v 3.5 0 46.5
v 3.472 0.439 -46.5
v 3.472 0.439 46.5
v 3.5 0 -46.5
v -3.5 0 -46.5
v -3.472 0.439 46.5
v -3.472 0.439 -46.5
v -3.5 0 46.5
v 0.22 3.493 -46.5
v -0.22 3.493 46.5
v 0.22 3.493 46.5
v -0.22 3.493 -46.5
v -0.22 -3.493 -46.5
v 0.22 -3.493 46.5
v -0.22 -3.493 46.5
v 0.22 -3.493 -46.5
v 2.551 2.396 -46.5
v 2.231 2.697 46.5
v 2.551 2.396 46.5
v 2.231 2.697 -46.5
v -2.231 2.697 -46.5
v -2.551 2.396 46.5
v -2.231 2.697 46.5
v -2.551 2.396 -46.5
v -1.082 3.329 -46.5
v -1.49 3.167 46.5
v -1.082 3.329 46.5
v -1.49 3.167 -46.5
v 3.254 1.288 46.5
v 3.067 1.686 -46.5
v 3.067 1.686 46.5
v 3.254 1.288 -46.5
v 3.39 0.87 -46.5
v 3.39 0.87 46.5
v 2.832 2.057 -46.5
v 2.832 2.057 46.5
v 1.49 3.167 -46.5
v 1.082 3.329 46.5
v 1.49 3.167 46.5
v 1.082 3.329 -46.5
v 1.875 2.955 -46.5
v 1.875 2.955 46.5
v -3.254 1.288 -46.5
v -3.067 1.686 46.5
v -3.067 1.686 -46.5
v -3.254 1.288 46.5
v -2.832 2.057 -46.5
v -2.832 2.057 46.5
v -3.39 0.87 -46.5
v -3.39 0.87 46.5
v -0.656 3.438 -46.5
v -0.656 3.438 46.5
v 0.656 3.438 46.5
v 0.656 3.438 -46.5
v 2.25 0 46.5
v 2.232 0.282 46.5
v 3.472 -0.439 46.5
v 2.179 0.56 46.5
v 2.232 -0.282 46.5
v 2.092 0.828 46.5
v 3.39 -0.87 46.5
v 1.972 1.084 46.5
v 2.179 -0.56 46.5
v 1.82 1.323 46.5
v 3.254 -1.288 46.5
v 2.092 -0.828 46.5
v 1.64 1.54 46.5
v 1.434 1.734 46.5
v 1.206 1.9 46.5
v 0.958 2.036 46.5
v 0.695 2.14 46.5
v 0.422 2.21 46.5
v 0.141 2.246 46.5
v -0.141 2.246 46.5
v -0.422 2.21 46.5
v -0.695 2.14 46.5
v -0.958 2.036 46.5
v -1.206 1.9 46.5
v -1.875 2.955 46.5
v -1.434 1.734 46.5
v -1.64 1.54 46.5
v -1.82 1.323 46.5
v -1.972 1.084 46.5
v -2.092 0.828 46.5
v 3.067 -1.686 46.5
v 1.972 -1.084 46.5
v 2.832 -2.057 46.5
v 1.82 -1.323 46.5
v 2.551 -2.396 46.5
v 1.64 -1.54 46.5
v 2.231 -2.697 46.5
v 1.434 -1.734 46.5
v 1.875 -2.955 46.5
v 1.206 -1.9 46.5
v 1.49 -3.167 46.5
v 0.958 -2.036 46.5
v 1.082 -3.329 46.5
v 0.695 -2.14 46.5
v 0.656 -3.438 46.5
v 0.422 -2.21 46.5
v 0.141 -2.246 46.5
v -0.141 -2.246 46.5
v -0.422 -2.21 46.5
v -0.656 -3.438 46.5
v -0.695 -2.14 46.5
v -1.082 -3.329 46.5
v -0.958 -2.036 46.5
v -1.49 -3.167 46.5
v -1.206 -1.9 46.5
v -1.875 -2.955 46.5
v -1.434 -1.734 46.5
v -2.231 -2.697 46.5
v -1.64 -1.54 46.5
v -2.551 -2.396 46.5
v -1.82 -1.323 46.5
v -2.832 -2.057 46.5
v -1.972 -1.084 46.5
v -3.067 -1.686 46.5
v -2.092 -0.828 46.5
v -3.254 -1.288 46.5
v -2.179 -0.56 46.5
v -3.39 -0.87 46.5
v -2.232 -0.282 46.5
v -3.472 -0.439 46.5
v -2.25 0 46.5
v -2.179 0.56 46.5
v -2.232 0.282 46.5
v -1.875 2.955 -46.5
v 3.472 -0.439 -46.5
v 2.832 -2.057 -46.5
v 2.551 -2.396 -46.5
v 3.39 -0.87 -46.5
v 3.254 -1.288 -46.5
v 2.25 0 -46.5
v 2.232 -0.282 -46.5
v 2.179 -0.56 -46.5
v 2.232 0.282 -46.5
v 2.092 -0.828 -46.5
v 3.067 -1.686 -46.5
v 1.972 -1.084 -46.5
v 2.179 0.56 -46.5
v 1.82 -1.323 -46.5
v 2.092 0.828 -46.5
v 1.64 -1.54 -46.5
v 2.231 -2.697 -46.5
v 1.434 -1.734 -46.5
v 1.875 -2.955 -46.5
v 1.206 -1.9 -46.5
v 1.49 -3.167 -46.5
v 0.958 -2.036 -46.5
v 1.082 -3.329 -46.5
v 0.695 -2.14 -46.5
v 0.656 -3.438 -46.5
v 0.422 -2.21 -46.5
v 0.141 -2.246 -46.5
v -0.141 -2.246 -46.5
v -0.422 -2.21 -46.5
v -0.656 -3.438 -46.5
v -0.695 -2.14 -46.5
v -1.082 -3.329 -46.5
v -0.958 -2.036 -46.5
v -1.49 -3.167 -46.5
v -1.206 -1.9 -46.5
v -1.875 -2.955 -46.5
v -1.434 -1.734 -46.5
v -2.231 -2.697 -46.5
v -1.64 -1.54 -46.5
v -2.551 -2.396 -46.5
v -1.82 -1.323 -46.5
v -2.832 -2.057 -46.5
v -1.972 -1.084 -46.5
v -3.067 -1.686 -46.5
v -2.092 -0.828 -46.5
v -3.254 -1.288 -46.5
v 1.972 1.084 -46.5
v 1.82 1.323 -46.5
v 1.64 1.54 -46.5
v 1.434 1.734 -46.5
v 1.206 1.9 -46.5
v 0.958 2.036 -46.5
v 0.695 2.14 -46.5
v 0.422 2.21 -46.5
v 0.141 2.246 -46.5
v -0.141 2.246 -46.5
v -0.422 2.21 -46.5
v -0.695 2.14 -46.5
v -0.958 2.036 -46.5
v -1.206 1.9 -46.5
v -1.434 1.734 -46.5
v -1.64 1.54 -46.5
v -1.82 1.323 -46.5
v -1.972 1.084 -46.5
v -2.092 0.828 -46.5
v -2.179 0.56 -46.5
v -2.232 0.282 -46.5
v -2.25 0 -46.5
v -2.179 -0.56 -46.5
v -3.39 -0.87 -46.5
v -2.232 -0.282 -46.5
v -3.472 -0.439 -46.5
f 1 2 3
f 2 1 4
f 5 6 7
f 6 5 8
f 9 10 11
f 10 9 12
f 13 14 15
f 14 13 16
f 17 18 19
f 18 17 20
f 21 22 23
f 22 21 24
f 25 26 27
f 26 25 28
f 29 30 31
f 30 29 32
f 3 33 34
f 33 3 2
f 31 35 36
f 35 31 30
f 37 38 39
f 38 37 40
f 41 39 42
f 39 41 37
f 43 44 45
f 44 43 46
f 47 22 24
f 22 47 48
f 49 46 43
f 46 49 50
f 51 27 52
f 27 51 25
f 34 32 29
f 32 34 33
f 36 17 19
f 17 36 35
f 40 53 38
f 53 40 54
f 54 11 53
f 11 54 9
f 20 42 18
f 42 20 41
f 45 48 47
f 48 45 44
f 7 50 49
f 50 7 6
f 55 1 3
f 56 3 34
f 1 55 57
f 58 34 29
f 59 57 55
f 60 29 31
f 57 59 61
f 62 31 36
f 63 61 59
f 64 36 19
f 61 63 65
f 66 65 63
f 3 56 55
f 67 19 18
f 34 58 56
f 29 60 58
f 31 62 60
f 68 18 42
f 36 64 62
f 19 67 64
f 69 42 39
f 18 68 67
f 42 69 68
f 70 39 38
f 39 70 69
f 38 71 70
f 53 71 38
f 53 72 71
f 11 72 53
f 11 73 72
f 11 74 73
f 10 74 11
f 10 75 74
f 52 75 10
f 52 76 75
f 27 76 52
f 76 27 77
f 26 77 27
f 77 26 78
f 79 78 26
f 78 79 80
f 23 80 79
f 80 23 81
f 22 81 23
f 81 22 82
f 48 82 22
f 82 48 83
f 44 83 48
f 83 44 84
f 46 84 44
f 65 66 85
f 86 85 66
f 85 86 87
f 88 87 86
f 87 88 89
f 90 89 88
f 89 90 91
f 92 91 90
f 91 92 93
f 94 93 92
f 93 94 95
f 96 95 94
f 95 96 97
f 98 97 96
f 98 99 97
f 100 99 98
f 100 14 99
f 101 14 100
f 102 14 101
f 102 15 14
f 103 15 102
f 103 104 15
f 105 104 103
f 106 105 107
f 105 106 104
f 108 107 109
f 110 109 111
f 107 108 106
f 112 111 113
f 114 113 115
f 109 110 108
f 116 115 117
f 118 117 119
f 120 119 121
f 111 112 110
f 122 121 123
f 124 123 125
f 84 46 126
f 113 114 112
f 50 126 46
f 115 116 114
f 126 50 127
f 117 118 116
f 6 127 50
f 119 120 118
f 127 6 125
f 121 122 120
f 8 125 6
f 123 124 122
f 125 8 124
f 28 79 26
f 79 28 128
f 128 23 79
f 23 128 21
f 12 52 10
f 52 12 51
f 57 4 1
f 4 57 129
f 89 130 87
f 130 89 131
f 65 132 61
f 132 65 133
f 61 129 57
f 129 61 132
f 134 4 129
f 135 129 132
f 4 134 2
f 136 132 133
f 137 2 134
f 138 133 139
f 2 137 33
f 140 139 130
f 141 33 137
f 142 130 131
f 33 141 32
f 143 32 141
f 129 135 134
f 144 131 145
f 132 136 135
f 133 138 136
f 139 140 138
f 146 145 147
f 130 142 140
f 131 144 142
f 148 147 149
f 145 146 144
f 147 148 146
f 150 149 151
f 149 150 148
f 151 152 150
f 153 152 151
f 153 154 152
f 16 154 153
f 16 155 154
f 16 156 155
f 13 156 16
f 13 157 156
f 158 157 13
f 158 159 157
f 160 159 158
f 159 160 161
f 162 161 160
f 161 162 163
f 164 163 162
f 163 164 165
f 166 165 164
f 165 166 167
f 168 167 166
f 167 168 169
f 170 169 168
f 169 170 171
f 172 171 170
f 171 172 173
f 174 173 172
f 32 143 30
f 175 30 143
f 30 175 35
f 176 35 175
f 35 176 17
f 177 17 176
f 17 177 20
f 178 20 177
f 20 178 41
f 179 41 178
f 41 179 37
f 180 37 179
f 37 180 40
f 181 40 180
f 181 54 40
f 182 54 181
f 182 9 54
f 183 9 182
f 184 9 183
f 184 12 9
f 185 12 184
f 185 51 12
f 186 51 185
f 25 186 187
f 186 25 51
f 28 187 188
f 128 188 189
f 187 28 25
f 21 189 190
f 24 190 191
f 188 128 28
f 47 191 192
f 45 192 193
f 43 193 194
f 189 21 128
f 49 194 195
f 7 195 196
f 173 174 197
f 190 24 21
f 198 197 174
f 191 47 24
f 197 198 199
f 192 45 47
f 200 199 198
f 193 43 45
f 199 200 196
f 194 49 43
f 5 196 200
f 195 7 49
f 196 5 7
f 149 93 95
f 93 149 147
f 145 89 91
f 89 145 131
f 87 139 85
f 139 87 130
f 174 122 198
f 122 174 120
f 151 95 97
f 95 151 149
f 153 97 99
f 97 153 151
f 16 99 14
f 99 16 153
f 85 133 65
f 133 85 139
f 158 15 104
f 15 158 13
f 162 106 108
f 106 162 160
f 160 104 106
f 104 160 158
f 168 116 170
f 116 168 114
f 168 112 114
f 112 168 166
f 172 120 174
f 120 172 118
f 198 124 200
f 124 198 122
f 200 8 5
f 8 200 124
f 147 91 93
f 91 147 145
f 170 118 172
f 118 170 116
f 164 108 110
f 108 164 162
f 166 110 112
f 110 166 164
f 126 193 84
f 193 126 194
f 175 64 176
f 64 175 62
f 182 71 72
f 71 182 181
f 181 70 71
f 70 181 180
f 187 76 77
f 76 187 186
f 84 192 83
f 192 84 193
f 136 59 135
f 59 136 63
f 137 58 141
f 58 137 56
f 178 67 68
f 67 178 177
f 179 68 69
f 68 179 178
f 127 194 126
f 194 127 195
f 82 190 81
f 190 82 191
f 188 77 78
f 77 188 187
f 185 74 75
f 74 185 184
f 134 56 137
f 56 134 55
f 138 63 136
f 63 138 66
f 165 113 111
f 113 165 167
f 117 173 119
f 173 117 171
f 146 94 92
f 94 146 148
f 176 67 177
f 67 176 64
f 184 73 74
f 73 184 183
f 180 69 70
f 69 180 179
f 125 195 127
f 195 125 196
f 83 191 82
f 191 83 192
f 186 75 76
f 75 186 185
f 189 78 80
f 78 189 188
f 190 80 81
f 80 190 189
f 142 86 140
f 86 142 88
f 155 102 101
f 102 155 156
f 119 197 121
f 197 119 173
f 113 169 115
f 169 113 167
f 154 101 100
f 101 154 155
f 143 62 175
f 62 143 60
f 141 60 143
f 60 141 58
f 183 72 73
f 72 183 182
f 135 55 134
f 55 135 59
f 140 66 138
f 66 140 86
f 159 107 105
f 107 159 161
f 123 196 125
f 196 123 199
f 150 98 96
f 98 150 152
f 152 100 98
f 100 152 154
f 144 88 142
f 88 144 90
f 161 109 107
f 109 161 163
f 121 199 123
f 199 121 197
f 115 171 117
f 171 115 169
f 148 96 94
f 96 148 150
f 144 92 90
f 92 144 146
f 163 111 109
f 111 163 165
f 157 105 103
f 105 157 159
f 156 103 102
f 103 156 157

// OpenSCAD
$fn = 50;


difference() {
	union() {
		translate(v = [0, 0, -46.5000000000]) {
			cylinder(h = 93, r = 3.5000000000);
		}
	}
	union() {
		translate(v = [0, 0, -100.0000000000]) {
			cylinder(h = 200, r = 2.2500000000);
		}
	}
}
